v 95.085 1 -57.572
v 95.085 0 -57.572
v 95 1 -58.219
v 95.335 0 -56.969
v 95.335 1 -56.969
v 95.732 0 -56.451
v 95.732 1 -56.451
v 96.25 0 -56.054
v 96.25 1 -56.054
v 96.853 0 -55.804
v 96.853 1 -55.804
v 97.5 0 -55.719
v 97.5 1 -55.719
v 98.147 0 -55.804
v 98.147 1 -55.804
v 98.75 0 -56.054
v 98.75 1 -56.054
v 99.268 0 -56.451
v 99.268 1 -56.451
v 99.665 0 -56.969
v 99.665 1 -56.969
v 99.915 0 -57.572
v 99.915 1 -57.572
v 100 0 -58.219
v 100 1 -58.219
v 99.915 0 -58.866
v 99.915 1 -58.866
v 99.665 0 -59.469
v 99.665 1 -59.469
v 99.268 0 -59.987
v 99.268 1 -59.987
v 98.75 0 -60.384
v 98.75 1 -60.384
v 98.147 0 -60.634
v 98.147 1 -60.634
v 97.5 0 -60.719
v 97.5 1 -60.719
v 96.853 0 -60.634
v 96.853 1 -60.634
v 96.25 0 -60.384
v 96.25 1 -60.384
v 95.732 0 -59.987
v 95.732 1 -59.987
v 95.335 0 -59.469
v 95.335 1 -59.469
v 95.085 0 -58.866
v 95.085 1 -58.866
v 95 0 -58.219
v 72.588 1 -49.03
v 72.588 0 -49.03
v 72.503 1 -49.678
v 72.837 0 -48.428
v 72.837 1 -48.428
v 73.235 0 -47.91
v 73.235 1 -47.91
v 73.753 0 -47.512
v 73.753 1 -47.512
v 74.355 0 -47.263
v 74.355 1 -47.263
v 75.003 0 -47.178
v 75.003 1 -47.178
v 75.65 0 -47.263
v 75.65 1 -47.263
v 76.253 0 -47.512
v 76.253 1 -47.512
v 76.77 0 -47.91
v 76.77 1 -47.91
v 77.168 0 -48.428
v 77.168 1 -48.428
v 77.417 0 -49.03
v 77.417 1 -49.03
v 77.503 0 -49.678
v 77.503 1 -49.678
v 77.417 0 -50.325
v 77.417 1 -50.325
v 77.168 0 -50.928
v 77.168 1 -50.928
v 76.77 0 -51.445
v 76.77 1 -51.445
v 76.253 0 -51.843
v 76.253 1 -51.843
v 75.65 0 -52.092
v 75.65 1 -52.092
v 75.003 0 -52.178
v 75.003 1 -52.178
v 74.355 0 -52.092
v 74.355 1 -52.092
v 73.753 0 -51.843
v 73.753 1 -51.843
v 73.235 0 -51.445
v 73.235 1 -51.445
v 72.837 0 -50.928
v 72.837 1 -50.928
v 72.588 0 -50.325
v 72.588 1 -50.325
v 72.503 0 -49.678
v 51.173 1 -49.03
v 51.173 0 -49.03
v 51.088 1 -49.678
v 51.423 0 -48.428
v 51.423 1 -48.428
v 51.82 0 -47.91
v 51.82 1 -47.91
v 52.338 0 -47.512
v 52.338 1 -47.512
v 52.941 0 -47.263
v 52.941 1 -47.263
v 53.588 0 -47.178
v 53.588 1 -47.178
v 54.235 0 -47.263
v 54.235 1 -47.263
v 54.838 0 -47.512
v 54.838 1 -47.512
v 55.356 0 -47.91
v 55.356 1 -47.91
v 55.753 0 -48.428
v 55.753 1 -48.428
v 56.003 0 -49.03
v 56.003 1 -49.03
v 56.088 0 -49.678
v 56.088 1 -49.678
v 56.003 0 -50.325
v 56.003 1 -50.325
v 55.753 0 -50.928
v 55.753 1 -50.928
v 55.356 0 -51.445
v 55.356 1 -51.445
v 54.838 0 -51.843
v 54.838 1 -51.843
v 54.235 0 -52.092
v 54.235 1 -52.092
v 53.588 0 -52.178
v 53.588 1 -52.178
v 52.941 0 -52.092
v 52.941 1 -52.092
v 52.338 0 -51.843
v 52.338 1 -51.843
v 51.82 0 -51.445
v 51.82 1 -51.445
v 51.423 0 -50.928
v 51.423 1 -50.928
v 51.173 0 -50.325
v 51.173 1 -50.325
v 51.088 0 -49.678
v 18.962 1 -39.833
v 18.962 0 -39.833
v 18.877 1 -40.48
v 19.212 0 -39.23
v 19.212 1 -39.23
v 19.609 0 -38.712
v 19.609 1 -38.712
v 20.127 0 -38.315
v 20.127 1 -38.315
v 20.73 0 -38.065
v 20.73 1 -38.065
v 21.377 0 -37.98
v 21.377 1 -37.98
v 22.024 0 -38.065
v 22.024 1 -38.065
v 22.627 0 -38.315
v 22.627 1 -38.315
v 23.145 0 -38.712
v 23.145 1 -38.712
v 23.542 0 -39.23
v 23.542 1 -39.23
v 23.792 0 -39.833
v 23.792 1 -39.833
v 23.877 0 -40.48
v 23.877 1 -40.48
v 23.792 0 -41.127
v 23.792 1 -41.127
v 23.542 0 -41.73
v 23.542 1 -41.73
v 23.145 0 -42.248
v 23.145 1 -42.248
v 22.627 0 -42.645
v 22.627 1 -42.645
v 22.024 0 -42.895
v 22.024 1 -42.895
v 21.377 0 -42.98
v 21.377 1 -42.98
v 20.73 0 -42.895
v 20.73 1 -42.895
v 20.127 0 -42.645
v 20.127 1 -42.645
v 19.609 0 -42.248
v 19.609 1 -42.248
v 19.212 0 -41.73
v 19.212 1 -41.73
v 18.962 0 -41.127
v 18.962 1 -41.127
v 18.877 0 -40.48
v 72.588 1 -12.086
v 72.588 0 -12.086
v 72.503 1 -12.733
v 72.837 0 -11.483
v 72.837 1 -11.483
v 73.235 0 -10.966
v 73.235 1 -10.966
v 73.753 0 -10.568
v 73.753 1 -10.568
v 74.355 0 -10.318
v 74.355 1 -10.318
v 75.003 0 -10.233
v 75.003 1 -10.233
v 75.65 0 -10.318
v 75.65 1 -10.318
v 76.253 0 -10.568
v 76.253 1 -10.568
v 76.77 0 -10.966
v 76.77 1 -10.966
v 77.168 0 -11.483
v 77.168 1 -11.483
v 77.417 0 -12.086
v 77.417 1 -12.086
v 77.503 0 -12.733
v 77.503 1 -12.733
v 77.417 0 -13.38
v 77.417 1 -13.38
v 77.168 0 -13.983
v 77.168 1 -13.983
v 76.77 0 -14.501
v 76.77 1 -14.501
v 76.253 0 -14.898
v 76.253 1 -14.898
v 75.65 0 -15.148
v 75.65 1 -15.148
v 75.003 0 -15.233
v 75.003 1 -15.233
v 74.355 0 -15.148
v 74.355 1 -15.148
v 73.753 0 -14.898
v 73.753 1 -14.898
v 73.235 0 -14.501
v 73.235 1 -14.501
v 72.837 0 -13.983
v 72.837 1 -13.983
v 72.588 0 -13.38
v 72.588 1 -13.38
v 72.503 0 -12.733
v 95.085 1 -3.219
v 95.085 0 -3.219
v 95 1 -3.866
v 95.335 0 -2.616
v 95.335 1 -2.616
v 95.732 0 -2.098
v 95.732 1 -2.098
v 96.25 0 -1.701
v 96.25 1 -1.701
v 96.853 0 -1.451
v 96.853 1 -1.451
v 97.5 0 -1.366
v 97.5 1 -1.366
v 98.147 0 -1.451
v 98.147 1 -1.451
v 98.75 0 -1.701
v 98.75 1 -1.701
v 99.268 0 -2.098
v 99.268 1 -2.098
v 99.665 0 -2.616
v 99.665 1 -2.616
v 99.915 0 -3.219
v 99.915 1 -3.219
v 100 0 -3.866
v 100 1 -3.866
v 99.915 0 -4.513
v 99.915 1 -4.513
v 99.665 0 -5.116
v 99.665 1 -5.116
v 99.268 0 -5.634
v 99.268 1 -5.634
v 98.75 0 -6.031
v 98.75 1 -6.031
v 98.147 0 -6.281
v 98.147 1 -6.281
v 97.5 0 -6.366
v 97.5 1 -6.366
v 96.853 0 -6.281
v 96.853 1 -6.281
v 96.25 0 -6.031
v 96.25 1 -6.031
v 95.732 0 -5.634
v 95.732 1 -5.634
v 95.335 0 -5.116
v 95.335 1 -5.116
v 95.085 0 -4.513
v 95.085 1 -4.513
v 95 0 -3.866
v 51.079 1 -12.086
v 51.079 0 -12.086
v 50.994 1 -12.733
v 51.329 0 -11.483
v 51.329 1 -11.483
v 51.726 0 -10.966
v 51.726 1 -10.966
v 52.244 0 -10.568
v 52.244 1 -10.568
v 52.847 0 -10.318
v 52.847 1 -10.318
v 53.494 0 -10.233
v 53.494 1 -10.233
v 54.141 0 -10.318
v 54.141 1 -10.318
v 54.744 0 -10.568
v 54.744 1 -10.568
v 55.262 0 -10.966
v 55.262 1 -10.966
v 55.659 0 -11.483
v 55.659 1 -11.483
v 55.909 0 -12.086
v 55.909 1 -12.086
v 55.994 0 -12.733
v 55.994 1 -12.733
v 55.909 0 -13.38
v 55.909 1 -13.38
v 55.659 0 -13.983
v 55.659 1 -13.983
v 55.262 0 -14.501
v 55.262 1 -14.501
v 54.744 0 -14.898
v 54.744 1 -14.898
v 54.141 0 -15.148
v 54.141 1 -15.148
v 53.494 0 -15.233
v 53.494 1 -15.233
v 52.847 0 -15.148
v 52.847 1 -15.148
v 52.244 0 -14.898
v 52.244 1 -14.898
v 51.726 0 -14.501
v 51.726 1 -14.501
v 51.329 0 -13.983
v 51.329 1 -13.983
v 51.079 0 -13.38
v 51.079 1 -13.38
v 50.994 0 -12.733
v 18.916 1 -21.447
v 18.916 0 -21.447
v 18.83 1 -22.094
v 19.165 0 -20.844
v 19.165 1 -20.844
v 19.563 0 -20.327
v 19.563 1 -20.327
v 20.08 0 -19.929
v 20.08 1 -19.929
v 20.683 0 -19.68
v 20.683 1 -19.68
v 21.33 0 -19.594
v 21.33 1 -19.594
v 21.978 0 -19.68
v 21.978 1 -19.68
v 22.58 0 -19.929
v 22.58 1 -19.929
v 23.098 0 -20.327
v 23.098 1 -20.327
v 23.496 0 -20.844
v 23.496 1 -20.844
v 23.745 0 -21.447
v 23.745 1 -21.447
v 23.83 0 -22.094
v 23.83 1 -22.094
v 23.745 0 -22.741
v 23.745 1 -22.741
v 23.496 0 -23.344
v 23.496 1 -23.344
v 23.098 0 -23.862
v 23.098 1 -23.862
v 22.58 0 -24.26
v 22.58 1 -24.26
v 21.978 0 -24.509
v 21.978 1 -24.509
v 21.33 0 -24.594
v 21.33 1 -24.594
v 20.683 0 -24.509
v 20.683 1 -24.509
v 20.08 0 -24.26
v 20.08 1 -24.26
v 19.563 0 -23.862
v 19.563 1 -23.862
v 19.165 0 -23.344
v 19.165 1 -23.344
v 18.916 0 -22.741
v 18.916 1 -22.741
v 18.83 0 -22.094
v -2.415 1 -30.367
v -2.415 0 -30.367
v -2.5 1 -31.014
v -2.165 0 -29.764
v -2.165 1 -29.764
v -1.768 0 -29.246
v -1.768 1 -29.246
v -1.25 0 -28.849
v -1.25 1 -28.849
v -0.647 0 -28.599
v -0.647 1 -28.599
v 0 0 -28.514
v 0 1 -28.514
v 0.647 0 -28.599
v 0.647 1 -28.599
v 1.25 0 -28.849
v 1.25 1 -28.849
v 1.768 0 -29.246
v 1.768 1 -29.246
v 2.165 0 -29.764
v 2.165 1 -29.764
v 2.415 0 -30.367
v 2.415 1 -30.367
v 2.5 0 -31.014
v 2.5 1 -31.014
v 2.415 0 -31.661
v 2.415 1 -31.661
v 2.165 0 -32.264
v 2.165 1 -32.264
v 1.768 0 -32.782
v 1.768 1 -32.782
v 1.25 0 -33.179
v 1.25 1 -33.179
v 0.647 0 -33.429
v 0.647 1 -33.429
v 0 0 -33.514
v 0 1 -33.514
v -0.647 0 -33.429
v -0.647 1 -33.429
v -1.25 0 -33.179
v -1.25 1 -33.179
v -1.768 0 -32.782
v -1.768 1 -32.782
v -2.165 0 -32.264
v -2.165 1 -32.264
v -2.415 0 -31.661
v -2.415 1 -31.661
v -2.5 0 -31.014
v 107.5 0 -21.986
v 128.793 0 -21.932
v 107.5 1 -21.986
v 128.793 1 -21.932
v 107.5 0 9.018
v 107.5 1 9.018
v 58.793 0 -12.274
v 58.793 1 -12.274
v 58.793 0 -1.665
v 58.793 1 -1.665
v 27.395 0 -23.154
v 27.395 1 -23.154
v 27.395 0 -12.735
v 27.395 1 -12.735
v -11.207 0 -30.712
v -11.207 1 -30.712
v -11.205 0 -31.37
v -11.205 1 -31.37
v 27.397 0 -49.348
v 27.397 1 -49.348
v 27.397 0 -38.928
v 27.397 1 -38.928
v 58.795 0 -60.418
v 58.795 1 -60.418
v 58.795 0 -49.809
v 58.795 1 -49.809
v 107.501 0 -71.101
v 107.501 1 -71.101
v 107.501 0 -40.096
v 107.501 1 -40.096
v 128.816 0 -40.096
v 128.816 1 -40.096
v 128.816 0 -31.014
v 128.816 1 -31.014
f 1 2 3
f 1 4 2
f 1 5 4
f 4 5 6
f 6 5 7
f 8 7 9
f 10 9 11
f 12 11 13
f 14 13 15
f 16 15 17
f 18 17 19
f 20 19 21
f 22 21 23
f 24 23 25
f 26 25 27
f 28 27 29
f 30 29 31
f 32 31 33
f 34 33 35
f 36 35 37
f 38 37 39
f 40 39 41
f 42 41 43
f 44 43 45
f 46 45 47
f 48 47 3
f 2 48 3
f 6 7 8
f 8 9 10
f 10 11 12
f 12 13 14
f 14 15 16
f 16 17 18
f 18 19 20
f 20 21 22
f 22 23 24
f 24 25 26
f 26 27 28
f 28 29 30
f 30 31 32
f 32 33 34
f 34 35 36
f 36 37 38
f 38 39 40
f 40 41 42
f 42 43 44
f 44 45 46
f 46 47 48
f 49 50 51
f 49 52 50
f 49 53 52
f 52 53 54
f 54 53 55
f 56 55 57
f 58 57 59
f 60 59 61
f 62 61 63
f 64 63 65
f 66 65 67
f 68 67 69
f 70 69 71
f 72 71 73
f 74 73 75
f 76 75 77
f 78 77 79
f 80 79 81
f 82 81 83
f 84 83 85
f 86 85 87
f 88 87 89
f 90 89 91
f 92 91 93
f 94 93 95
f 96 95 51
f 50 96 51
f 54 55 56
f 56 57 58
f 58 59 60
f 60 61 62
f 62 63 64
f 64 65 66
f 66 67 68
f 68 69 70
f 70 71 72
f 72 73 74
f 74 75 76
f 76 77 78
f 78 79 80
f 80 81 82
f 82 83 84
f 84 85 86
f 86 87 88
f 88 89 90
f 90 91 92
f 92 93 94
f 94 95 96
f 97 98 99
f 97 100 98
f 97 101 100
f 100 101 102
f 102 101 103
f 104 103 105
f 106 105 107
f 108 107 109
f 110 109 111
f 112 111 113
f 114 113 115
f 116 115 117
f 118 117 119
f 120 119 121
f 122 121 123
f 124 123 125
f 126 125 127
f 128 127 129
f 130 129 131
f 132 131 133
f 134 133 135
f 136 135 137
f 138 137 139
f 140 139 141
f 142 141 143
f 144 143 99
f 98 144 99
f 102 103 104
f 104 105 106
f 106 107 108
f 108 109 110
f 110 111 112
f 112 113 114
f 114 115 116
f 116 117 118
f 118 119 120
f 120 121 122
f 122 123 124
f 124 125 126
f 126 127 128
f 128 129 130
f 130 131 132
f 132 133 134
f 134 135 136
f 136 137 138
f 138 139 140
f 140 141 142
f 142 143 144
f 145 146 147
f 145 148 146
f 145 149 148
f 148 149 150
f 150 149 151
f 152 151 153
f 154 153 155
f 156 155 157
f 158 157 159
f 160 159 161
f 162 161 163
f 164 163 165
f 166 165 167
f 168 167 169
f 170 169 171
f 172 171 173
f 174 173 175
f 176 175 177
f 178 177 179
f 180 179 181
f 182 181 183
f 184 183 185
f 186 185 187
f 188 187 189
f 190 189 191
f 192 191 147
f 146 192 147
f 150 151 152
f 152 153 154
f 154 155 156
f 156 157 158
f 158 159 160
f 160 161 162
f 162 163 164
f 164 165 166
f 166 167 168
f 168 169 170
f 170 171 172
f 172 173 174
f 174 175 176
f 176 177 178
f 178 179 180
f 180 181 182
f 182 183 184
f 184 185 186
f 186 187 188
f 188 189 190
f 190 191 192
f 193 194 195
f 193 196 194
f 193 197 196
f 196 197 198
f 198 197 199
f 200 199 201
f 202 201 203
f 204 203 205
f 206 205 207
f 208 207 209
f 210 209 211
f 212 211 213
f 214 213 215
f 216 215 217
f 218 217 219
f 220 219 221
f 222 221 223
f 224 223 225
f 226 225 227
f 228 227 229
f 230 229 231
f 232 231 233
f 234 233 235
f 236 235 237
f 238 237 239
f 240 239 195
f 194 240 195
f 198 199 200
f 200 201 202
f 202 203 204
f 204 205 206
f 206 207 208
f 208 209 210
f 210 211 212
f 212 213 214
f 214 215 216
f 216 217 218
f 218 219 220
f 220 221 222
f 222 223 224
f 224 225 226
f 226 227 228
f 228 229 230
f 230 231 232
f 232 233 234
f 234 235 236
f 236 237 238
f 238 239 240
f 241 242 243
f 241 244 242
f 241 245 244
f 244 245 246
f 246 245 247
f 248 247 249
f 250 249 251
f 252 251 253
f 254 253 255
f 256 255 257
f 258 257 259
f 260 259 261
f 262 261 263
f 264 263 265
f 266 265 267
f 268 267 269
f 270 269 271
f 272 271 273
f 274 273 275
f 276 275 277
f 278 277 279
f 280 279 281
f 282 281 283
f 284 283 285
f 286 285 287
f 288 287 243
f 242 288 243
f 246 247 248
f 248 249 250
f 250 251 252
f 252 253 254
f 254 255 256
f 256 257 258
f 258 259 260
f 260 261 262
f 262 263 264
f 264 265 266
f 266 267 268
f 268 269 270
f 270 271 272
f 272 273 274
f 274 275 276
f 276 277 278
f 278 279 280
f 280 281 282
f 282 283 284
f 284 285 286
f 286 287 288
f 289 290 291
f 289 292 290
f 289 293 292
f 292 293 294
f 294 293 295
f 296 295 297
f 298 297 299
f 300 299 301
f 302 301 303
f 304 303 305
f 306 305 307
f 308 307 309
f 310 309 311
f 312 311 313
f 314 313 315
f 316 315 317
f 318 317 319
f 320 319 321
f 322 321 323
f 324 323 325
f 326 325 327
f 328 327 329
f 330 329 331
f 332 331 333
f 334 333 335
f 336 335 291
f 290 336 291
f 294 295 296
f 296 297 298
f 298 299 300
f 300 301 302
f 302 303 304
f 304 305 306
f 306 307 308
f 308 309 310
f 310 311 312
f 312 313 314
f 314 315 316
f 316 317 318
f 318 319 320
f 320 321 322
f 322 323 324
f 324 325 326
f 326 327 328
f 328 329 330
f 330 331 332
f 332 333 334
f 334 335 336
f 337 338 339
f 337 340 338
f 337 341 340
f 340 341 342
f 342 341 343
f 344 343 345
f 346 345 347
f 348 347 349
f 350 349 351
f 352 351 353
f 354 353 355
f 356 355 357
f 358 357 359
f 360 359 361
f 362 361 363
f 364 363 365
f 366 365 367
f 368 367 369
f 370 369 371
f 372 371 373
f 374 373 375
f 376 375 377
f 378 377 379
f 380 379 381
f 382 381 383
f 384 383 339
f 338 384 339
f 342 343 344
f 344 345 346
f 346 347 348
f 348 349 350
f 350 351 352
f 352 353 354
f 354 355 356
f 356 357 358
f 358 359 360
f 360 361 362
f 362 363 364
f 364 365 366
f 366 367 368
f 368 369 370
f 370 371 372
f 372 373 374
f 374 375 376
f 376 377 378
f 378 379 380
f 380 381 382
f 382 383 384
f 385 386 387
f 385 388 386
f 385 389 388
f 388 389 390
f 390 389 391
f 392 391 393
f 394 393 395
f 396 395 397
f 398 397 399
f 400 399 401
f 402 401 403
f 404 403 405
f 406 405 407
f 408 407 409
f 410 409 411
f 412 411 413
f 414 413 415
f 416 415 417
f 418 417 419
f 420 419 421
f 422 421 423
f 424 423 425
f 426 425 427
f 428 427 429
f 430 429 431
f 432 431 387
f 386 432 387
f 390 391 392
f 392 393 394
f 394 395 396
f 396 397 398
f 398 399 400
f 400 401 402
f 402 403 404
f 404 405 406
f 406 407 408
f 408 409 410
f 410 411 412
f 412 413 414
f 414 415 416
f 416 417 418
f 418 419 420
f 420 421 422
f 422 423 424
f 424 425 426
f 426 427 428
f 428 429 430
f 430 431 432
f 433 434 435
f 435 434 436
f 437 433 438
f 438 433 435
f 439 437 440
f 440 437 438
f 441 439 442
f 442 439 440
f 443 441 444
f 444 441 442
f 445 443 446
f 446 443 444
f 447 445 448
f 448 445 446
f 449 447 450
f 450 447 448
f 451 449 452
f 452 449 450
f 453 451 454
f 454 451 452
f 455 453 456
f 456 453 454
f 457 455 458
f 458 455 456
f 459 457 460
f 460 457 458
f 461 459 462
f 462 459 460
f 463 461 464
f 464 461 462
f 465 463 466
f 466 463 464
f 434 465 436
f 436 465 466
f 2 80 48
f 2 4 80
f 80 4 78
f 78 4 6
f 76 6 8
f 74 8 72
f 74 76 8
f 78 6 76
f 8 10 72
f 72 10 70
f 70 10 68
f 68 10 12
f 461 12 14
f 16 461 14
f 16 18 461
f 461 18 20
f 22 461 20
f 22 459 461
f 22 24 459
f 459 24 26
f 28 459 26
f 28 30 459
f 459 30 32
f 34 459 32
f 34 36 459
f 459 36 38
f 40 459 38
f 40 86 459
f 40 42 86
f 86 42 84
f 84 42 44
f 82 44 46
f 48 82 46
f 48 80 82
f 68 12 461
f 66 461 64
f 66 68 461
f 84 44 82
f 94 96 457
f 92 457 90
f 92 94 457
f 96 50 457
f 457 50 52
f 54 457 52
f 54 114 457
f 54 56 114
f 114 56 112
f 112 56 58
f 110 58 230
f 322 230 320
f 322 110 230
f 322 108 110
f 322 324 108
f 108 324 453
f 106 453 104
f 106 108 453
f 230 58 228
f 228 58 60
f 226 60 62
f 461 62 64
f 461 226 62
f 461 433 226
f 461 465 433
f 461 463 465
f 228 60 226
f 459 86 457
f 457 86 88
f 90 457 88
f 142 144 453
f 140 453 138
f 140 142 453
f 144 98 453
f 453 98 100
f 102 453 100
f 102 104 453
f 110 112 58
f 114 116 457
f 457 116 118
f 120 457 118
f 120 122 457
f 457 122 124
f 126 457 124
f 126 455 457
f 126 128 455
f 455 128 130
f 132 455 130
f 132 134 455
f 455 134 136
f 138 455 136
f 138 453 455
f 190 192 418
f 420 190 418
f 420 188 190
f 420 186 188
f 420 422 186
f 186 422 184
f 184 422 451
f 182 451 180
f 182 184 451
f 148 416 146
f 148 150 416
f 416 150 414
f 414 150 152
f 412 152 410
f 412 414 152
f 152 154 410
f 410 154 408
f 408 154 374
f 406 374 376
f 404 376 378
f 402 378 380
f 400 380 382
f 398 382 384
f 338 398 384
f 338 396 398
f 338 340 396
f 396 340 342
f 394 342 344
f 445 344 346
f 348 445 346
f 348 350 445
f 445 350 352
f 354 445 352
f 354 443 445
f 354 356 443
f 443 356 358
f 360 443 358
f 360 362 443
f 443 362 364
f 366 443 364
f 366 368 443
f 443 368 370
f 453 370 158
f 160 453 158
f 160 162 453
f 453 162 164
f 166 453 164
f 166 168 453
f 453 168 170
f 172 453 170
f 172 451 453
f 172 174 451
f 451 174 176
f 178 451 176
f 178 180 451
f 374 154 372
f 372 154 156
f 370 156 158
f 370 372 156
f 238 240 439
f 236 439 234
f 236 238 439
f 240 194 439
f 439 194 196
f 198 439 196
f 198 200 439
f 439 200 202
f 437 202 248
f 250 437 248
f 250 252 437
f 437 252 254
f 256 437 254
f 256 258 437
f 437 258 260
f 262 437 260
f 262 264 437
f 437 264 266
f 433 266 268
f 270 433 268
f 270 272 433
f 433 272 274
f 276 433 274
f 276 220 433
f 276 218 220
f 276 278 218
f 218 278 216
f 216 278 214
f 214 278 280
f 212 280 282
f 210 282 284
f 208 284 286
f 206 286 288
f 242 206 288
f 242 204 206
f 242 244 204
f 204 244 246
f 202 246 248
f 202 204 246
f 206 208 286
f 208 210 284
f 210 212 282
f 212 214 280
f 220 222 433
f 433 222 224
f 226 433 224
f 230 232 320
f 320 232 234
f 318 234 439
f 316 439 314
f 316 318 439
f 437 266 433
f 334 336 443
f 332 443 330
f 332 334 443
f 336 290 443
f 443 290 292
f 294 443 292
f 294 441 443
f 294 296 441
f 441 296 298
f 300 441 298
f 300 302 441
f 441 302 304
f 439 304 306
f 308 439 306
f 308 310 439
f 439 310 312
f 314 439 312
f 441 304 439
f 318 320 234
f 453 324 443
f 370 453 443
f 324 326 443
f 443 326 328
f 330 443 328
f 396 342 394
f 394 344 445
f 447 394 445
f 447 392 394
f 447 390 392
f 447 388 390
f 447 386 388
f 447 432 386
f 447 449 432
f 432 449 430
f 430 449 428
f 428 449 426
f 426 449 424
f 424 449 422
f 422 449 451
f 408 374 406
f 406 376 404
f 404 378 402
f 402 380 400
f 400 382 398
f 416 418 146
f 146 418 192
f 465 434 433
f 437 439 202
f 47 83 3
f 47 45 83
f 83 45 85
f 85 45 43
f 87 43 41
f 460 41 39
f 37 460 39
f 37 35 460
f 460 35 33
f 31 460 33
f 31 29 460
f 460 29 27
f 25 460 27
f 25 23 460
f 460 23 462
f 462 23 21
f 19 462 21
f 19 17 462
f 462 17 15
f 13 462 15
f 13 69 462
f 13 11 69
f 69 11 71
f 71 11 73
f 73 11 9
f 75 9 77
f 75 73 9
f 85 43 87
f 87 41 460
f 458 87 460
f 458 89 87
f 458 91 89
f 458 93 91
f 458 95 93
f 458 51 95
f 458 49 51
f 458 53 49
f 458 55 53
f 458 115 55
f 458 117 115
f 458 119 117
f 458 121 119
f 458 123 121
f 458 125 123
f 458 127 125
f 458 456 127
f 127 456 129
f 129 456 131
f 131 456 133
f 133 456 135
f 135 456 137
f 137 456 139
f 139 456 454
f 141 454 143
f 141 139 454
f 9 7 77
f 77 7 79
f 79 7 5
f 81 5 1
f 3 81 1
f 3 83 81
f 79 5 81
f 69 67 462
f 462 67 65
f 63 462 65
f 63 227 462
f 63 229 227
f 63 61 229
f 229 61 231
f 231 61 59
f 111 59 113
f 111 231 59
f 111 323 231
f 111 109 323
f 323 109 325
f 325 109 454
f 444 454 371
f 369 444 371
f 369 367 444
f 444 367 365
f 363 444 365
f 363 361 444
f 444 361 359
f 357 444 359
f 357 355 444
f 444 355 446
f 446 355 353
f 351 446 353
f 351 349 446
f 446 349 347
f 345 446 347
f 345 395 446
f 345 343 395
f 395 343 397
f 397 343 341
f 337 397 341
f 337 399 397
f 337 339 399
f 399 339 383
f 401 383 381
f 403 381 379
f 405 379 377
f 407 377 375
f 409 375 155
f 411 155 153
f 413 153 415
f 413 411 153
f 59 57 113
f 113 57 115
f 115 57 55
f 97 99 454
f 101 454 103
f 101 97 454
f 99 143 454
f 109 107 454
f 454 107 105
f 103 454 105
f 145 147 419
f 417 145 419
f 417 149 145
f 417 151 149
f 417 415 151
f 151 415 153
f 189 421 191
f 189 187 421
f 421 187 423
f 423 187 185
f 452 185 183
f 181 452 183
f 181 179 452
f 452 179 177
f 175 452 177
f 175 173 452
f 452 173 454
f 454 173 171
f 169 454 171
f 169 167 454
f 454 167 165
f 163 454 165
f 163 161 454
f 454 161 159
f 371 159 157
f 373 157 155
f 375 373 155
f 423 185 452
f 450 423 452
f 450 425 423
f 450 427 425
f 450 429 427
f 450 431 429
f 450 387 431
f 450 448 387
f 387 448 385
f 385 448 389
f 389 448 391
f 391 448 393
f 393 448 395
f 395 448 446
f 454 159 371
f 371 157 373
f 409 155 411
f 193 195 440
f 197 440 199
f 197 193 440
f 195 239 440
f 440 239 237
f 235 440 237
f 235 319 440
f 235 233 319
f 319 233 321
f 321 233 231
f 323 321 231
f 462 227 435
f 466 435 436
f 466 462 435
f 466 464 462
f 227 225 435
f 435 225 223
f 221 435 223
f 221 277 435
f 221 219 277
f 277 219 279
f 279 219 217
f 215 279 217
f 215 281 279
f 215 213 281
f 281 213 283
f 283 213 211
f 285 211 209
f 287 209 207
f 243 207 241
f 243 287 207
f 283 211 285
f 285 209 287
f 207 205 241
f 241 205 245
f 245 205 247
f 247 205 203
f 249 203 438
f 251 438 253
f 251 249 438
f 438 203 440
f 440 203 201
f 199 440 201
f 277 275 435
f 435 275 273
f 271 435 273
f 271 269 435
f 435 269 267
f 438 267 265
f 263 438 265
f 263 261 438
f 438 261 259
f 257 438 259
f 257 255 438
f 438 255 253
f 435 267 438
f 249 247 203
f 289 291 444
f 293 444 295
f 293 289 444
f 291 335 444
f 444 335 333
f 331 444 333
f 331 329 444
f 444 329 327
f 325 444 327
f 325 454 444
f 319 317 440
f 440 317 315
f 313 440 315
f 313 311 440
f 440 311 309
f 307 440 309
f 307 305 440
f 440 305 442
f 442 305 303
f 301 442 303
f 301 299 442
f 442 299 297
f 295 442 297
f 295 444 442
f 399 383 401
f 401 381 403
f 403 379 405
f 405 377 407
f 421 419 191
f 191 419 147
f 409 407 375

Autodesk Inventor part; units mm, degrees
ref_plane "YZ Plane" through (0, 0, 0) normal (1, 0, 0) x (0, 1, 0)
ref_plane "XZ Plane" through (0, 0, 0) normal (0, 1, 0) x (-1, 0, 0)
ref_plane "XY Plane" through (0, 0, 0) normal (0, 0, 1) x (1, 0, 0)
sketch "Sketch1" plane through (0, 0, 0) normal (0, 1, 0) x (-1, 0, 0)
  line L0 (-128.7932, -21.9318) -> (-128.8163, -31.0141)
  line L1 (11.205, -31.37) -> (11.2067, -30.7124)
  line L2 (11.2067, -30.7124) -> (-27.3951, -12.7346)
  line L3 (-27.3951, -12.7346) -> (-27.3951, -23.154)
  line L4 (-27.3951, -23.154) -> (-58.7933, -1.6646)
  line L5 (-58.7933, -1.6646) -> (-58.7933, -12.2738)
  line L6 (-58.7933, -12.2738) -> (-107.4995, 9.0183)
  line L7 (-107.4995, 9.0183) -> (-107.4995, -21.9859)
  line L8 (-107.4995, -21.9859) -> (-128.7932, -21.9318)
  line L9 (-128.8163, -40.0964) -> (-128.8163, -31.0141)
  line L10 (11.205, -31.37) -> (-27.3968, -49.3478)
  line L11 (-27.3968, -49.3478) -> (-27.3968, -38.9284)
  line L12 (-27.3968, -38.9284) -> (-58.795, -60.4178)
  line L13 (-58.795, -60.4178) -> (-58.795, -49.8086)
  line L14 (-58.795, -49.8086) -> (-107.5012, -71.1006)
  line L15 (-107.5012, -71.1006) -> (-107.5012, -40.0964)
  line L16 (-107.5012, -40.0964) -> (-128.8163, -40.0964)
  circle A0 centre (0, -31.0141) radius 2.5
  circle A1 centre (-21.3305, -22.0944) radius 2.5
  circle A2 centre (-53.494, -12.7333) radius 2.5
  circle A3 centre (-97.4998, -3.866) radius 2.5
  circle A4 centre (-75.0025, -12.7333) radius 2.5
  circle A5 centre (-21.3772, -40.48) radius 2.5
  circle A6 centre (-53.5879, -49.6775) radius 2.5
  circle A7 centre (-97.4998, -58.2188) radius 2.5
  circle A8 centre (-75.0025, -49.6775) radius 2.5
  point P0 (0, 0)
  dimension "d2" = 5
  dimension "d3" = 5
  dimension "d4" = 5
  dimension "d5" = 5
  dimension "d6" = 5
extrude "Extrusion1" add sketch "Sketch1" along normal blind 1
properties part number "Arbol"
